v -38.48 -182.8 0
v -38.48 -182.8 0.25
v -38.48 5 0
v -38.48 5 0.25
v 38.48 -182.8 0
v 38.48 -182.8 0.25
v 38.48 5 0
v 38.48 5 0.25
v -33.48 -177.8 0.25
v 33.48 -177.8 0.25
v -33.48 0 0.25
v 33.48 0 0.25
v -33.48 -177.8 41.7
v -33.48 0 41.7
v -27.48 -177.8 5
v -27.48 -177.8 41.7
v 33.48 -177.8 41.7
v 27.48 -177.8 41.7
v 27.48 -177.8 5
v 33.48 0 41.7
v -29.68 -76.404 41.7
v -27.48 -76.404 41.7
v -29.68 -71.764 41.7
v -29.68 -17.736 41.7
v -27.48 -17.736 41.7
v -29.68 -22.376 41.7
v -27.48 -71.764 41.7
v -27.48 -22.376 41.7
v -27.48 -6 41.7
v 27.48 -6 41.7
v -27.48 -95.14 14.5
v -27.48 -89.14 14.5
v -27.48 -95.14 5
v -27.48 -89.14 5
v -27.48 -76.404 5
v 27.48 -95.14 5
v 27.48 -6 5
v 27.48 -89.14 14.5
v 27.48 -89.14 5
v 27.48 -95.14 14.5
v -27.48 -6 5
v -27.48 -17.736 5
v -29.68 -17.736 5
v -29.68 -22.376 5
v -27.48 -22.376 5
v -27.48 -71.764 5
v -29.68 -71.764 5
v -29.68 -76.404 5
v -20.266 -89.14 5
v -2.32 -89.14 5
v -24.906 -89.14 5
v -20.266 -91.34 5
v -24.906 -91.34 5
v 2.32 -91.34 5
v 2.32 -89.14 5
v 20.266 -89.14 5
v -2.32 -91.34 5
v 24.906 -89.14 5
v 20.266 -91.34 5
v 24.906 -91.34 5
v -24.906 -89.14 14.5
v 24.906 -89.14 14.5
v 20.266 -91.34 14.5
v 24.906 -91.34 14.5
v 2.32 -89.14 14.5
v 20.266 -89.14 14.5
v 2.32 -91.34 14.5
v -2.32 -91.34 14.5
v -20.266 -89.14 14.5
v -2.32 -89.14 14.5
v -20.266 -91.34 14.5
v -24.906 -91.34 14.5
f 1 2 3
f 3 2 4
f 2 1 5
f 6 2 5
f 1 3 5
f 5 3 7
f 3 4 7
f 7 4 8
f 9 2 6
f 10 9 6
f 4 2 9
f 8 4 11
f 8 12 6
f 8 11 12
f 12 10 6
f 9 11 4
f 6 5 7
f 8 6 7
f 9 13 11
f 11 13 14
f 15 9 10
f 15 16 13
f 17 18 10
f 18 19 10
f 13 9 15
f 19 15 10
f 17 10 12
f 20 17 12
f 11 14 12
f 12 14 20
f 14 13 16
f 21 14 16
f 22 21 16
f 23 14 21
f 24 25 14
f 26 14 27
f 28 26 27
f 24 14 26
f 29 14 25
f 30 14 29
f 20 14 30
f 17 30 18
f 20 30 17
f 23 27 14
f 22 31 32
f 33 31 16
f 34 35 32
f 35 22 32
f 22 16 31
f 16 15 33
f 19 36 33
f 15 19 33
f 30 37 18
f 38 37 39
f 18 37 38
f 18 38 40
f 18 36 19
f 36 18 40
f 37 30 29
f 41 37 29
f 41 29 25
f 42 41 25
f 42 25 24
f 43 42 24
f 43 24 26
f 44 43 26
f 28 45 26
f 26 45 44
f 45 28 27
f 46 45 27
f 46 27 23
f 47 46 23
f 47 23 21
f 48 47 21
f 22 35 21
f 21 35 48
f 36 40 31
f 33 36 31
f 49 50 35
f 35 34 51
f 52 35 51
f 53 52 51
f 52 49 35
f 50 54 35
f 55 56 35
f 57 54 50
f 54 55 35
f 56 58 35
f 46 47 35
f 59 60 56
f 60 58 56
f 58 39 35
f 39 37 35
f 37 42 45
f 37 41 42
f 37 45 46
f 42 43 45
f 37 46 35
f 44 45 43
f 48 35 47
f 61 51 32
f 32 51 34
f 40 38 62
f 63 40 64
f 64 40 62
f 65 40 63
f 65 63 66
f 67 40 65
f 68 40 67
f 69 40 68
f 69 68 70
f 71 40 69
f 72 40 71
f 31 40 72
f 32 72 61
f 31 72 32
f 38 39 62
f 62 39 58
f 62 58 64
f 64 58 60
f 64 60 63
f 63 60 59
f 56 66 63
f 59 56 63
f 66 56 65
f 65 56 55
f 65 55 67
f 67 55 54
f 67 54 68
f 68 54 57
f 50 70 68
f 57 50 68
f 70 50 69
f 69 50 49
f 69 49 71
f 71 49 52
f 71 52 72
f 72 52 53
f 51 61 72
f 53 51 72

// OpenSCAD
// file: constants.scad
hp = 6;
h_floor = 5;

// back wall
r_usb = 2.64;
r_antenna = 3.43;
t_antenna_hex = 5;
t_antenna_washer = 1.75;
t_back = t_antenna_hex + t_antenna_washer;
hex_diam_max = 12;
hex_diam_min = 8.25;

// breadboard
bb_w = 54.96;
bb_d = 83.14;
bb_h = 9.5;
bb_foot_w = 4.64;
bb_foot_d = 2.2;
bb_left_foot_offset = 14.556;
bb_bottom_foot_offset = 22.586;

bb_to_back = 83.66;
bb_bottom_to_wires_top = 32.7;

d_bb_bottom_support = hp;
lid_inset = 4;

h_lid_edge = 3;

back_inset = 5;
h_back_edge = t_back - back_inset;
dz_back_antenna = 12;
dy_back_antenna = 20;

w_base = bb_w + 2*hp;
d_base = hp + bb_d + bb_to_back + back_inset;
h_base = h_floor + bb_bottom_to_wires_top + lid_inset;

h_outer = h_base + h_lid_edge;
w_outer = w_base;
d_outer = d_base;

h_antiwarp = 0.25;
hp_antiwarp = 5;

d_backspace = d_base - hp - bb_d - d_bb_bottom_support;
// main file
include <constants.scad>;

difference() {

	union() {
		translate([0, -d_base/2, h_base/2])
		cube([w_base, d_base, h_base], center=true);

		translate([0, -(d_base)/2, h_antiwarp/2])
		cube([w_base + 2*hp_antiwarp, d_base + 2*hp_antiwarp, h_antiwarp], center=true);
	}

	translate([0, -hp - bb_d/2, h_floor + (h_base - h_floor)/2])
	cube([bb_w, bb_d, h_base - h_floor], center=true);

	// left feet
	for (ysign = [-1, 1]) {
		// TEMP: + 0.5
		translate([
			-bb_w/2,
			-hp - bb_d/2 - ysign*(bb_d/2 - bb_left_foot_offset) + 0.5,
			h_floor + (h_base - h_floor)/2])
		cube([bb_foot_d*2, bb_foot_w, h_base - h_floor], center=true);
	}

	// bottom feet
	for (xsign=[-1, 0, 1]) {
		translate([
			xsign*bb_bottom_foot_offset,
			-hp -bb_d,
			h_floor + (h_base - h_floor)/2])
		cube([bb_foot_w, bb_foot_d*2, h_base - h_floor], center=true);
	}

	// space above bb bottom edge
	translate([
		0,
		-hp - bb_d - d_bb_bottom_support/2,
		h_floor + bb_h + (h_base - (h_floor + bb_h))/2])
	cube([bb_w, d_bb_bottom_support, h_base - (h_floor + bb_h)], center=true);

	// back space
	translate([
		0,
		d_backspace/2 - d_base,
		h_floor + (h_base - h_floor)/2
	])
	cube([bb_w, d_backspace + 0.001, h_base - h_floor], center=true);
}
